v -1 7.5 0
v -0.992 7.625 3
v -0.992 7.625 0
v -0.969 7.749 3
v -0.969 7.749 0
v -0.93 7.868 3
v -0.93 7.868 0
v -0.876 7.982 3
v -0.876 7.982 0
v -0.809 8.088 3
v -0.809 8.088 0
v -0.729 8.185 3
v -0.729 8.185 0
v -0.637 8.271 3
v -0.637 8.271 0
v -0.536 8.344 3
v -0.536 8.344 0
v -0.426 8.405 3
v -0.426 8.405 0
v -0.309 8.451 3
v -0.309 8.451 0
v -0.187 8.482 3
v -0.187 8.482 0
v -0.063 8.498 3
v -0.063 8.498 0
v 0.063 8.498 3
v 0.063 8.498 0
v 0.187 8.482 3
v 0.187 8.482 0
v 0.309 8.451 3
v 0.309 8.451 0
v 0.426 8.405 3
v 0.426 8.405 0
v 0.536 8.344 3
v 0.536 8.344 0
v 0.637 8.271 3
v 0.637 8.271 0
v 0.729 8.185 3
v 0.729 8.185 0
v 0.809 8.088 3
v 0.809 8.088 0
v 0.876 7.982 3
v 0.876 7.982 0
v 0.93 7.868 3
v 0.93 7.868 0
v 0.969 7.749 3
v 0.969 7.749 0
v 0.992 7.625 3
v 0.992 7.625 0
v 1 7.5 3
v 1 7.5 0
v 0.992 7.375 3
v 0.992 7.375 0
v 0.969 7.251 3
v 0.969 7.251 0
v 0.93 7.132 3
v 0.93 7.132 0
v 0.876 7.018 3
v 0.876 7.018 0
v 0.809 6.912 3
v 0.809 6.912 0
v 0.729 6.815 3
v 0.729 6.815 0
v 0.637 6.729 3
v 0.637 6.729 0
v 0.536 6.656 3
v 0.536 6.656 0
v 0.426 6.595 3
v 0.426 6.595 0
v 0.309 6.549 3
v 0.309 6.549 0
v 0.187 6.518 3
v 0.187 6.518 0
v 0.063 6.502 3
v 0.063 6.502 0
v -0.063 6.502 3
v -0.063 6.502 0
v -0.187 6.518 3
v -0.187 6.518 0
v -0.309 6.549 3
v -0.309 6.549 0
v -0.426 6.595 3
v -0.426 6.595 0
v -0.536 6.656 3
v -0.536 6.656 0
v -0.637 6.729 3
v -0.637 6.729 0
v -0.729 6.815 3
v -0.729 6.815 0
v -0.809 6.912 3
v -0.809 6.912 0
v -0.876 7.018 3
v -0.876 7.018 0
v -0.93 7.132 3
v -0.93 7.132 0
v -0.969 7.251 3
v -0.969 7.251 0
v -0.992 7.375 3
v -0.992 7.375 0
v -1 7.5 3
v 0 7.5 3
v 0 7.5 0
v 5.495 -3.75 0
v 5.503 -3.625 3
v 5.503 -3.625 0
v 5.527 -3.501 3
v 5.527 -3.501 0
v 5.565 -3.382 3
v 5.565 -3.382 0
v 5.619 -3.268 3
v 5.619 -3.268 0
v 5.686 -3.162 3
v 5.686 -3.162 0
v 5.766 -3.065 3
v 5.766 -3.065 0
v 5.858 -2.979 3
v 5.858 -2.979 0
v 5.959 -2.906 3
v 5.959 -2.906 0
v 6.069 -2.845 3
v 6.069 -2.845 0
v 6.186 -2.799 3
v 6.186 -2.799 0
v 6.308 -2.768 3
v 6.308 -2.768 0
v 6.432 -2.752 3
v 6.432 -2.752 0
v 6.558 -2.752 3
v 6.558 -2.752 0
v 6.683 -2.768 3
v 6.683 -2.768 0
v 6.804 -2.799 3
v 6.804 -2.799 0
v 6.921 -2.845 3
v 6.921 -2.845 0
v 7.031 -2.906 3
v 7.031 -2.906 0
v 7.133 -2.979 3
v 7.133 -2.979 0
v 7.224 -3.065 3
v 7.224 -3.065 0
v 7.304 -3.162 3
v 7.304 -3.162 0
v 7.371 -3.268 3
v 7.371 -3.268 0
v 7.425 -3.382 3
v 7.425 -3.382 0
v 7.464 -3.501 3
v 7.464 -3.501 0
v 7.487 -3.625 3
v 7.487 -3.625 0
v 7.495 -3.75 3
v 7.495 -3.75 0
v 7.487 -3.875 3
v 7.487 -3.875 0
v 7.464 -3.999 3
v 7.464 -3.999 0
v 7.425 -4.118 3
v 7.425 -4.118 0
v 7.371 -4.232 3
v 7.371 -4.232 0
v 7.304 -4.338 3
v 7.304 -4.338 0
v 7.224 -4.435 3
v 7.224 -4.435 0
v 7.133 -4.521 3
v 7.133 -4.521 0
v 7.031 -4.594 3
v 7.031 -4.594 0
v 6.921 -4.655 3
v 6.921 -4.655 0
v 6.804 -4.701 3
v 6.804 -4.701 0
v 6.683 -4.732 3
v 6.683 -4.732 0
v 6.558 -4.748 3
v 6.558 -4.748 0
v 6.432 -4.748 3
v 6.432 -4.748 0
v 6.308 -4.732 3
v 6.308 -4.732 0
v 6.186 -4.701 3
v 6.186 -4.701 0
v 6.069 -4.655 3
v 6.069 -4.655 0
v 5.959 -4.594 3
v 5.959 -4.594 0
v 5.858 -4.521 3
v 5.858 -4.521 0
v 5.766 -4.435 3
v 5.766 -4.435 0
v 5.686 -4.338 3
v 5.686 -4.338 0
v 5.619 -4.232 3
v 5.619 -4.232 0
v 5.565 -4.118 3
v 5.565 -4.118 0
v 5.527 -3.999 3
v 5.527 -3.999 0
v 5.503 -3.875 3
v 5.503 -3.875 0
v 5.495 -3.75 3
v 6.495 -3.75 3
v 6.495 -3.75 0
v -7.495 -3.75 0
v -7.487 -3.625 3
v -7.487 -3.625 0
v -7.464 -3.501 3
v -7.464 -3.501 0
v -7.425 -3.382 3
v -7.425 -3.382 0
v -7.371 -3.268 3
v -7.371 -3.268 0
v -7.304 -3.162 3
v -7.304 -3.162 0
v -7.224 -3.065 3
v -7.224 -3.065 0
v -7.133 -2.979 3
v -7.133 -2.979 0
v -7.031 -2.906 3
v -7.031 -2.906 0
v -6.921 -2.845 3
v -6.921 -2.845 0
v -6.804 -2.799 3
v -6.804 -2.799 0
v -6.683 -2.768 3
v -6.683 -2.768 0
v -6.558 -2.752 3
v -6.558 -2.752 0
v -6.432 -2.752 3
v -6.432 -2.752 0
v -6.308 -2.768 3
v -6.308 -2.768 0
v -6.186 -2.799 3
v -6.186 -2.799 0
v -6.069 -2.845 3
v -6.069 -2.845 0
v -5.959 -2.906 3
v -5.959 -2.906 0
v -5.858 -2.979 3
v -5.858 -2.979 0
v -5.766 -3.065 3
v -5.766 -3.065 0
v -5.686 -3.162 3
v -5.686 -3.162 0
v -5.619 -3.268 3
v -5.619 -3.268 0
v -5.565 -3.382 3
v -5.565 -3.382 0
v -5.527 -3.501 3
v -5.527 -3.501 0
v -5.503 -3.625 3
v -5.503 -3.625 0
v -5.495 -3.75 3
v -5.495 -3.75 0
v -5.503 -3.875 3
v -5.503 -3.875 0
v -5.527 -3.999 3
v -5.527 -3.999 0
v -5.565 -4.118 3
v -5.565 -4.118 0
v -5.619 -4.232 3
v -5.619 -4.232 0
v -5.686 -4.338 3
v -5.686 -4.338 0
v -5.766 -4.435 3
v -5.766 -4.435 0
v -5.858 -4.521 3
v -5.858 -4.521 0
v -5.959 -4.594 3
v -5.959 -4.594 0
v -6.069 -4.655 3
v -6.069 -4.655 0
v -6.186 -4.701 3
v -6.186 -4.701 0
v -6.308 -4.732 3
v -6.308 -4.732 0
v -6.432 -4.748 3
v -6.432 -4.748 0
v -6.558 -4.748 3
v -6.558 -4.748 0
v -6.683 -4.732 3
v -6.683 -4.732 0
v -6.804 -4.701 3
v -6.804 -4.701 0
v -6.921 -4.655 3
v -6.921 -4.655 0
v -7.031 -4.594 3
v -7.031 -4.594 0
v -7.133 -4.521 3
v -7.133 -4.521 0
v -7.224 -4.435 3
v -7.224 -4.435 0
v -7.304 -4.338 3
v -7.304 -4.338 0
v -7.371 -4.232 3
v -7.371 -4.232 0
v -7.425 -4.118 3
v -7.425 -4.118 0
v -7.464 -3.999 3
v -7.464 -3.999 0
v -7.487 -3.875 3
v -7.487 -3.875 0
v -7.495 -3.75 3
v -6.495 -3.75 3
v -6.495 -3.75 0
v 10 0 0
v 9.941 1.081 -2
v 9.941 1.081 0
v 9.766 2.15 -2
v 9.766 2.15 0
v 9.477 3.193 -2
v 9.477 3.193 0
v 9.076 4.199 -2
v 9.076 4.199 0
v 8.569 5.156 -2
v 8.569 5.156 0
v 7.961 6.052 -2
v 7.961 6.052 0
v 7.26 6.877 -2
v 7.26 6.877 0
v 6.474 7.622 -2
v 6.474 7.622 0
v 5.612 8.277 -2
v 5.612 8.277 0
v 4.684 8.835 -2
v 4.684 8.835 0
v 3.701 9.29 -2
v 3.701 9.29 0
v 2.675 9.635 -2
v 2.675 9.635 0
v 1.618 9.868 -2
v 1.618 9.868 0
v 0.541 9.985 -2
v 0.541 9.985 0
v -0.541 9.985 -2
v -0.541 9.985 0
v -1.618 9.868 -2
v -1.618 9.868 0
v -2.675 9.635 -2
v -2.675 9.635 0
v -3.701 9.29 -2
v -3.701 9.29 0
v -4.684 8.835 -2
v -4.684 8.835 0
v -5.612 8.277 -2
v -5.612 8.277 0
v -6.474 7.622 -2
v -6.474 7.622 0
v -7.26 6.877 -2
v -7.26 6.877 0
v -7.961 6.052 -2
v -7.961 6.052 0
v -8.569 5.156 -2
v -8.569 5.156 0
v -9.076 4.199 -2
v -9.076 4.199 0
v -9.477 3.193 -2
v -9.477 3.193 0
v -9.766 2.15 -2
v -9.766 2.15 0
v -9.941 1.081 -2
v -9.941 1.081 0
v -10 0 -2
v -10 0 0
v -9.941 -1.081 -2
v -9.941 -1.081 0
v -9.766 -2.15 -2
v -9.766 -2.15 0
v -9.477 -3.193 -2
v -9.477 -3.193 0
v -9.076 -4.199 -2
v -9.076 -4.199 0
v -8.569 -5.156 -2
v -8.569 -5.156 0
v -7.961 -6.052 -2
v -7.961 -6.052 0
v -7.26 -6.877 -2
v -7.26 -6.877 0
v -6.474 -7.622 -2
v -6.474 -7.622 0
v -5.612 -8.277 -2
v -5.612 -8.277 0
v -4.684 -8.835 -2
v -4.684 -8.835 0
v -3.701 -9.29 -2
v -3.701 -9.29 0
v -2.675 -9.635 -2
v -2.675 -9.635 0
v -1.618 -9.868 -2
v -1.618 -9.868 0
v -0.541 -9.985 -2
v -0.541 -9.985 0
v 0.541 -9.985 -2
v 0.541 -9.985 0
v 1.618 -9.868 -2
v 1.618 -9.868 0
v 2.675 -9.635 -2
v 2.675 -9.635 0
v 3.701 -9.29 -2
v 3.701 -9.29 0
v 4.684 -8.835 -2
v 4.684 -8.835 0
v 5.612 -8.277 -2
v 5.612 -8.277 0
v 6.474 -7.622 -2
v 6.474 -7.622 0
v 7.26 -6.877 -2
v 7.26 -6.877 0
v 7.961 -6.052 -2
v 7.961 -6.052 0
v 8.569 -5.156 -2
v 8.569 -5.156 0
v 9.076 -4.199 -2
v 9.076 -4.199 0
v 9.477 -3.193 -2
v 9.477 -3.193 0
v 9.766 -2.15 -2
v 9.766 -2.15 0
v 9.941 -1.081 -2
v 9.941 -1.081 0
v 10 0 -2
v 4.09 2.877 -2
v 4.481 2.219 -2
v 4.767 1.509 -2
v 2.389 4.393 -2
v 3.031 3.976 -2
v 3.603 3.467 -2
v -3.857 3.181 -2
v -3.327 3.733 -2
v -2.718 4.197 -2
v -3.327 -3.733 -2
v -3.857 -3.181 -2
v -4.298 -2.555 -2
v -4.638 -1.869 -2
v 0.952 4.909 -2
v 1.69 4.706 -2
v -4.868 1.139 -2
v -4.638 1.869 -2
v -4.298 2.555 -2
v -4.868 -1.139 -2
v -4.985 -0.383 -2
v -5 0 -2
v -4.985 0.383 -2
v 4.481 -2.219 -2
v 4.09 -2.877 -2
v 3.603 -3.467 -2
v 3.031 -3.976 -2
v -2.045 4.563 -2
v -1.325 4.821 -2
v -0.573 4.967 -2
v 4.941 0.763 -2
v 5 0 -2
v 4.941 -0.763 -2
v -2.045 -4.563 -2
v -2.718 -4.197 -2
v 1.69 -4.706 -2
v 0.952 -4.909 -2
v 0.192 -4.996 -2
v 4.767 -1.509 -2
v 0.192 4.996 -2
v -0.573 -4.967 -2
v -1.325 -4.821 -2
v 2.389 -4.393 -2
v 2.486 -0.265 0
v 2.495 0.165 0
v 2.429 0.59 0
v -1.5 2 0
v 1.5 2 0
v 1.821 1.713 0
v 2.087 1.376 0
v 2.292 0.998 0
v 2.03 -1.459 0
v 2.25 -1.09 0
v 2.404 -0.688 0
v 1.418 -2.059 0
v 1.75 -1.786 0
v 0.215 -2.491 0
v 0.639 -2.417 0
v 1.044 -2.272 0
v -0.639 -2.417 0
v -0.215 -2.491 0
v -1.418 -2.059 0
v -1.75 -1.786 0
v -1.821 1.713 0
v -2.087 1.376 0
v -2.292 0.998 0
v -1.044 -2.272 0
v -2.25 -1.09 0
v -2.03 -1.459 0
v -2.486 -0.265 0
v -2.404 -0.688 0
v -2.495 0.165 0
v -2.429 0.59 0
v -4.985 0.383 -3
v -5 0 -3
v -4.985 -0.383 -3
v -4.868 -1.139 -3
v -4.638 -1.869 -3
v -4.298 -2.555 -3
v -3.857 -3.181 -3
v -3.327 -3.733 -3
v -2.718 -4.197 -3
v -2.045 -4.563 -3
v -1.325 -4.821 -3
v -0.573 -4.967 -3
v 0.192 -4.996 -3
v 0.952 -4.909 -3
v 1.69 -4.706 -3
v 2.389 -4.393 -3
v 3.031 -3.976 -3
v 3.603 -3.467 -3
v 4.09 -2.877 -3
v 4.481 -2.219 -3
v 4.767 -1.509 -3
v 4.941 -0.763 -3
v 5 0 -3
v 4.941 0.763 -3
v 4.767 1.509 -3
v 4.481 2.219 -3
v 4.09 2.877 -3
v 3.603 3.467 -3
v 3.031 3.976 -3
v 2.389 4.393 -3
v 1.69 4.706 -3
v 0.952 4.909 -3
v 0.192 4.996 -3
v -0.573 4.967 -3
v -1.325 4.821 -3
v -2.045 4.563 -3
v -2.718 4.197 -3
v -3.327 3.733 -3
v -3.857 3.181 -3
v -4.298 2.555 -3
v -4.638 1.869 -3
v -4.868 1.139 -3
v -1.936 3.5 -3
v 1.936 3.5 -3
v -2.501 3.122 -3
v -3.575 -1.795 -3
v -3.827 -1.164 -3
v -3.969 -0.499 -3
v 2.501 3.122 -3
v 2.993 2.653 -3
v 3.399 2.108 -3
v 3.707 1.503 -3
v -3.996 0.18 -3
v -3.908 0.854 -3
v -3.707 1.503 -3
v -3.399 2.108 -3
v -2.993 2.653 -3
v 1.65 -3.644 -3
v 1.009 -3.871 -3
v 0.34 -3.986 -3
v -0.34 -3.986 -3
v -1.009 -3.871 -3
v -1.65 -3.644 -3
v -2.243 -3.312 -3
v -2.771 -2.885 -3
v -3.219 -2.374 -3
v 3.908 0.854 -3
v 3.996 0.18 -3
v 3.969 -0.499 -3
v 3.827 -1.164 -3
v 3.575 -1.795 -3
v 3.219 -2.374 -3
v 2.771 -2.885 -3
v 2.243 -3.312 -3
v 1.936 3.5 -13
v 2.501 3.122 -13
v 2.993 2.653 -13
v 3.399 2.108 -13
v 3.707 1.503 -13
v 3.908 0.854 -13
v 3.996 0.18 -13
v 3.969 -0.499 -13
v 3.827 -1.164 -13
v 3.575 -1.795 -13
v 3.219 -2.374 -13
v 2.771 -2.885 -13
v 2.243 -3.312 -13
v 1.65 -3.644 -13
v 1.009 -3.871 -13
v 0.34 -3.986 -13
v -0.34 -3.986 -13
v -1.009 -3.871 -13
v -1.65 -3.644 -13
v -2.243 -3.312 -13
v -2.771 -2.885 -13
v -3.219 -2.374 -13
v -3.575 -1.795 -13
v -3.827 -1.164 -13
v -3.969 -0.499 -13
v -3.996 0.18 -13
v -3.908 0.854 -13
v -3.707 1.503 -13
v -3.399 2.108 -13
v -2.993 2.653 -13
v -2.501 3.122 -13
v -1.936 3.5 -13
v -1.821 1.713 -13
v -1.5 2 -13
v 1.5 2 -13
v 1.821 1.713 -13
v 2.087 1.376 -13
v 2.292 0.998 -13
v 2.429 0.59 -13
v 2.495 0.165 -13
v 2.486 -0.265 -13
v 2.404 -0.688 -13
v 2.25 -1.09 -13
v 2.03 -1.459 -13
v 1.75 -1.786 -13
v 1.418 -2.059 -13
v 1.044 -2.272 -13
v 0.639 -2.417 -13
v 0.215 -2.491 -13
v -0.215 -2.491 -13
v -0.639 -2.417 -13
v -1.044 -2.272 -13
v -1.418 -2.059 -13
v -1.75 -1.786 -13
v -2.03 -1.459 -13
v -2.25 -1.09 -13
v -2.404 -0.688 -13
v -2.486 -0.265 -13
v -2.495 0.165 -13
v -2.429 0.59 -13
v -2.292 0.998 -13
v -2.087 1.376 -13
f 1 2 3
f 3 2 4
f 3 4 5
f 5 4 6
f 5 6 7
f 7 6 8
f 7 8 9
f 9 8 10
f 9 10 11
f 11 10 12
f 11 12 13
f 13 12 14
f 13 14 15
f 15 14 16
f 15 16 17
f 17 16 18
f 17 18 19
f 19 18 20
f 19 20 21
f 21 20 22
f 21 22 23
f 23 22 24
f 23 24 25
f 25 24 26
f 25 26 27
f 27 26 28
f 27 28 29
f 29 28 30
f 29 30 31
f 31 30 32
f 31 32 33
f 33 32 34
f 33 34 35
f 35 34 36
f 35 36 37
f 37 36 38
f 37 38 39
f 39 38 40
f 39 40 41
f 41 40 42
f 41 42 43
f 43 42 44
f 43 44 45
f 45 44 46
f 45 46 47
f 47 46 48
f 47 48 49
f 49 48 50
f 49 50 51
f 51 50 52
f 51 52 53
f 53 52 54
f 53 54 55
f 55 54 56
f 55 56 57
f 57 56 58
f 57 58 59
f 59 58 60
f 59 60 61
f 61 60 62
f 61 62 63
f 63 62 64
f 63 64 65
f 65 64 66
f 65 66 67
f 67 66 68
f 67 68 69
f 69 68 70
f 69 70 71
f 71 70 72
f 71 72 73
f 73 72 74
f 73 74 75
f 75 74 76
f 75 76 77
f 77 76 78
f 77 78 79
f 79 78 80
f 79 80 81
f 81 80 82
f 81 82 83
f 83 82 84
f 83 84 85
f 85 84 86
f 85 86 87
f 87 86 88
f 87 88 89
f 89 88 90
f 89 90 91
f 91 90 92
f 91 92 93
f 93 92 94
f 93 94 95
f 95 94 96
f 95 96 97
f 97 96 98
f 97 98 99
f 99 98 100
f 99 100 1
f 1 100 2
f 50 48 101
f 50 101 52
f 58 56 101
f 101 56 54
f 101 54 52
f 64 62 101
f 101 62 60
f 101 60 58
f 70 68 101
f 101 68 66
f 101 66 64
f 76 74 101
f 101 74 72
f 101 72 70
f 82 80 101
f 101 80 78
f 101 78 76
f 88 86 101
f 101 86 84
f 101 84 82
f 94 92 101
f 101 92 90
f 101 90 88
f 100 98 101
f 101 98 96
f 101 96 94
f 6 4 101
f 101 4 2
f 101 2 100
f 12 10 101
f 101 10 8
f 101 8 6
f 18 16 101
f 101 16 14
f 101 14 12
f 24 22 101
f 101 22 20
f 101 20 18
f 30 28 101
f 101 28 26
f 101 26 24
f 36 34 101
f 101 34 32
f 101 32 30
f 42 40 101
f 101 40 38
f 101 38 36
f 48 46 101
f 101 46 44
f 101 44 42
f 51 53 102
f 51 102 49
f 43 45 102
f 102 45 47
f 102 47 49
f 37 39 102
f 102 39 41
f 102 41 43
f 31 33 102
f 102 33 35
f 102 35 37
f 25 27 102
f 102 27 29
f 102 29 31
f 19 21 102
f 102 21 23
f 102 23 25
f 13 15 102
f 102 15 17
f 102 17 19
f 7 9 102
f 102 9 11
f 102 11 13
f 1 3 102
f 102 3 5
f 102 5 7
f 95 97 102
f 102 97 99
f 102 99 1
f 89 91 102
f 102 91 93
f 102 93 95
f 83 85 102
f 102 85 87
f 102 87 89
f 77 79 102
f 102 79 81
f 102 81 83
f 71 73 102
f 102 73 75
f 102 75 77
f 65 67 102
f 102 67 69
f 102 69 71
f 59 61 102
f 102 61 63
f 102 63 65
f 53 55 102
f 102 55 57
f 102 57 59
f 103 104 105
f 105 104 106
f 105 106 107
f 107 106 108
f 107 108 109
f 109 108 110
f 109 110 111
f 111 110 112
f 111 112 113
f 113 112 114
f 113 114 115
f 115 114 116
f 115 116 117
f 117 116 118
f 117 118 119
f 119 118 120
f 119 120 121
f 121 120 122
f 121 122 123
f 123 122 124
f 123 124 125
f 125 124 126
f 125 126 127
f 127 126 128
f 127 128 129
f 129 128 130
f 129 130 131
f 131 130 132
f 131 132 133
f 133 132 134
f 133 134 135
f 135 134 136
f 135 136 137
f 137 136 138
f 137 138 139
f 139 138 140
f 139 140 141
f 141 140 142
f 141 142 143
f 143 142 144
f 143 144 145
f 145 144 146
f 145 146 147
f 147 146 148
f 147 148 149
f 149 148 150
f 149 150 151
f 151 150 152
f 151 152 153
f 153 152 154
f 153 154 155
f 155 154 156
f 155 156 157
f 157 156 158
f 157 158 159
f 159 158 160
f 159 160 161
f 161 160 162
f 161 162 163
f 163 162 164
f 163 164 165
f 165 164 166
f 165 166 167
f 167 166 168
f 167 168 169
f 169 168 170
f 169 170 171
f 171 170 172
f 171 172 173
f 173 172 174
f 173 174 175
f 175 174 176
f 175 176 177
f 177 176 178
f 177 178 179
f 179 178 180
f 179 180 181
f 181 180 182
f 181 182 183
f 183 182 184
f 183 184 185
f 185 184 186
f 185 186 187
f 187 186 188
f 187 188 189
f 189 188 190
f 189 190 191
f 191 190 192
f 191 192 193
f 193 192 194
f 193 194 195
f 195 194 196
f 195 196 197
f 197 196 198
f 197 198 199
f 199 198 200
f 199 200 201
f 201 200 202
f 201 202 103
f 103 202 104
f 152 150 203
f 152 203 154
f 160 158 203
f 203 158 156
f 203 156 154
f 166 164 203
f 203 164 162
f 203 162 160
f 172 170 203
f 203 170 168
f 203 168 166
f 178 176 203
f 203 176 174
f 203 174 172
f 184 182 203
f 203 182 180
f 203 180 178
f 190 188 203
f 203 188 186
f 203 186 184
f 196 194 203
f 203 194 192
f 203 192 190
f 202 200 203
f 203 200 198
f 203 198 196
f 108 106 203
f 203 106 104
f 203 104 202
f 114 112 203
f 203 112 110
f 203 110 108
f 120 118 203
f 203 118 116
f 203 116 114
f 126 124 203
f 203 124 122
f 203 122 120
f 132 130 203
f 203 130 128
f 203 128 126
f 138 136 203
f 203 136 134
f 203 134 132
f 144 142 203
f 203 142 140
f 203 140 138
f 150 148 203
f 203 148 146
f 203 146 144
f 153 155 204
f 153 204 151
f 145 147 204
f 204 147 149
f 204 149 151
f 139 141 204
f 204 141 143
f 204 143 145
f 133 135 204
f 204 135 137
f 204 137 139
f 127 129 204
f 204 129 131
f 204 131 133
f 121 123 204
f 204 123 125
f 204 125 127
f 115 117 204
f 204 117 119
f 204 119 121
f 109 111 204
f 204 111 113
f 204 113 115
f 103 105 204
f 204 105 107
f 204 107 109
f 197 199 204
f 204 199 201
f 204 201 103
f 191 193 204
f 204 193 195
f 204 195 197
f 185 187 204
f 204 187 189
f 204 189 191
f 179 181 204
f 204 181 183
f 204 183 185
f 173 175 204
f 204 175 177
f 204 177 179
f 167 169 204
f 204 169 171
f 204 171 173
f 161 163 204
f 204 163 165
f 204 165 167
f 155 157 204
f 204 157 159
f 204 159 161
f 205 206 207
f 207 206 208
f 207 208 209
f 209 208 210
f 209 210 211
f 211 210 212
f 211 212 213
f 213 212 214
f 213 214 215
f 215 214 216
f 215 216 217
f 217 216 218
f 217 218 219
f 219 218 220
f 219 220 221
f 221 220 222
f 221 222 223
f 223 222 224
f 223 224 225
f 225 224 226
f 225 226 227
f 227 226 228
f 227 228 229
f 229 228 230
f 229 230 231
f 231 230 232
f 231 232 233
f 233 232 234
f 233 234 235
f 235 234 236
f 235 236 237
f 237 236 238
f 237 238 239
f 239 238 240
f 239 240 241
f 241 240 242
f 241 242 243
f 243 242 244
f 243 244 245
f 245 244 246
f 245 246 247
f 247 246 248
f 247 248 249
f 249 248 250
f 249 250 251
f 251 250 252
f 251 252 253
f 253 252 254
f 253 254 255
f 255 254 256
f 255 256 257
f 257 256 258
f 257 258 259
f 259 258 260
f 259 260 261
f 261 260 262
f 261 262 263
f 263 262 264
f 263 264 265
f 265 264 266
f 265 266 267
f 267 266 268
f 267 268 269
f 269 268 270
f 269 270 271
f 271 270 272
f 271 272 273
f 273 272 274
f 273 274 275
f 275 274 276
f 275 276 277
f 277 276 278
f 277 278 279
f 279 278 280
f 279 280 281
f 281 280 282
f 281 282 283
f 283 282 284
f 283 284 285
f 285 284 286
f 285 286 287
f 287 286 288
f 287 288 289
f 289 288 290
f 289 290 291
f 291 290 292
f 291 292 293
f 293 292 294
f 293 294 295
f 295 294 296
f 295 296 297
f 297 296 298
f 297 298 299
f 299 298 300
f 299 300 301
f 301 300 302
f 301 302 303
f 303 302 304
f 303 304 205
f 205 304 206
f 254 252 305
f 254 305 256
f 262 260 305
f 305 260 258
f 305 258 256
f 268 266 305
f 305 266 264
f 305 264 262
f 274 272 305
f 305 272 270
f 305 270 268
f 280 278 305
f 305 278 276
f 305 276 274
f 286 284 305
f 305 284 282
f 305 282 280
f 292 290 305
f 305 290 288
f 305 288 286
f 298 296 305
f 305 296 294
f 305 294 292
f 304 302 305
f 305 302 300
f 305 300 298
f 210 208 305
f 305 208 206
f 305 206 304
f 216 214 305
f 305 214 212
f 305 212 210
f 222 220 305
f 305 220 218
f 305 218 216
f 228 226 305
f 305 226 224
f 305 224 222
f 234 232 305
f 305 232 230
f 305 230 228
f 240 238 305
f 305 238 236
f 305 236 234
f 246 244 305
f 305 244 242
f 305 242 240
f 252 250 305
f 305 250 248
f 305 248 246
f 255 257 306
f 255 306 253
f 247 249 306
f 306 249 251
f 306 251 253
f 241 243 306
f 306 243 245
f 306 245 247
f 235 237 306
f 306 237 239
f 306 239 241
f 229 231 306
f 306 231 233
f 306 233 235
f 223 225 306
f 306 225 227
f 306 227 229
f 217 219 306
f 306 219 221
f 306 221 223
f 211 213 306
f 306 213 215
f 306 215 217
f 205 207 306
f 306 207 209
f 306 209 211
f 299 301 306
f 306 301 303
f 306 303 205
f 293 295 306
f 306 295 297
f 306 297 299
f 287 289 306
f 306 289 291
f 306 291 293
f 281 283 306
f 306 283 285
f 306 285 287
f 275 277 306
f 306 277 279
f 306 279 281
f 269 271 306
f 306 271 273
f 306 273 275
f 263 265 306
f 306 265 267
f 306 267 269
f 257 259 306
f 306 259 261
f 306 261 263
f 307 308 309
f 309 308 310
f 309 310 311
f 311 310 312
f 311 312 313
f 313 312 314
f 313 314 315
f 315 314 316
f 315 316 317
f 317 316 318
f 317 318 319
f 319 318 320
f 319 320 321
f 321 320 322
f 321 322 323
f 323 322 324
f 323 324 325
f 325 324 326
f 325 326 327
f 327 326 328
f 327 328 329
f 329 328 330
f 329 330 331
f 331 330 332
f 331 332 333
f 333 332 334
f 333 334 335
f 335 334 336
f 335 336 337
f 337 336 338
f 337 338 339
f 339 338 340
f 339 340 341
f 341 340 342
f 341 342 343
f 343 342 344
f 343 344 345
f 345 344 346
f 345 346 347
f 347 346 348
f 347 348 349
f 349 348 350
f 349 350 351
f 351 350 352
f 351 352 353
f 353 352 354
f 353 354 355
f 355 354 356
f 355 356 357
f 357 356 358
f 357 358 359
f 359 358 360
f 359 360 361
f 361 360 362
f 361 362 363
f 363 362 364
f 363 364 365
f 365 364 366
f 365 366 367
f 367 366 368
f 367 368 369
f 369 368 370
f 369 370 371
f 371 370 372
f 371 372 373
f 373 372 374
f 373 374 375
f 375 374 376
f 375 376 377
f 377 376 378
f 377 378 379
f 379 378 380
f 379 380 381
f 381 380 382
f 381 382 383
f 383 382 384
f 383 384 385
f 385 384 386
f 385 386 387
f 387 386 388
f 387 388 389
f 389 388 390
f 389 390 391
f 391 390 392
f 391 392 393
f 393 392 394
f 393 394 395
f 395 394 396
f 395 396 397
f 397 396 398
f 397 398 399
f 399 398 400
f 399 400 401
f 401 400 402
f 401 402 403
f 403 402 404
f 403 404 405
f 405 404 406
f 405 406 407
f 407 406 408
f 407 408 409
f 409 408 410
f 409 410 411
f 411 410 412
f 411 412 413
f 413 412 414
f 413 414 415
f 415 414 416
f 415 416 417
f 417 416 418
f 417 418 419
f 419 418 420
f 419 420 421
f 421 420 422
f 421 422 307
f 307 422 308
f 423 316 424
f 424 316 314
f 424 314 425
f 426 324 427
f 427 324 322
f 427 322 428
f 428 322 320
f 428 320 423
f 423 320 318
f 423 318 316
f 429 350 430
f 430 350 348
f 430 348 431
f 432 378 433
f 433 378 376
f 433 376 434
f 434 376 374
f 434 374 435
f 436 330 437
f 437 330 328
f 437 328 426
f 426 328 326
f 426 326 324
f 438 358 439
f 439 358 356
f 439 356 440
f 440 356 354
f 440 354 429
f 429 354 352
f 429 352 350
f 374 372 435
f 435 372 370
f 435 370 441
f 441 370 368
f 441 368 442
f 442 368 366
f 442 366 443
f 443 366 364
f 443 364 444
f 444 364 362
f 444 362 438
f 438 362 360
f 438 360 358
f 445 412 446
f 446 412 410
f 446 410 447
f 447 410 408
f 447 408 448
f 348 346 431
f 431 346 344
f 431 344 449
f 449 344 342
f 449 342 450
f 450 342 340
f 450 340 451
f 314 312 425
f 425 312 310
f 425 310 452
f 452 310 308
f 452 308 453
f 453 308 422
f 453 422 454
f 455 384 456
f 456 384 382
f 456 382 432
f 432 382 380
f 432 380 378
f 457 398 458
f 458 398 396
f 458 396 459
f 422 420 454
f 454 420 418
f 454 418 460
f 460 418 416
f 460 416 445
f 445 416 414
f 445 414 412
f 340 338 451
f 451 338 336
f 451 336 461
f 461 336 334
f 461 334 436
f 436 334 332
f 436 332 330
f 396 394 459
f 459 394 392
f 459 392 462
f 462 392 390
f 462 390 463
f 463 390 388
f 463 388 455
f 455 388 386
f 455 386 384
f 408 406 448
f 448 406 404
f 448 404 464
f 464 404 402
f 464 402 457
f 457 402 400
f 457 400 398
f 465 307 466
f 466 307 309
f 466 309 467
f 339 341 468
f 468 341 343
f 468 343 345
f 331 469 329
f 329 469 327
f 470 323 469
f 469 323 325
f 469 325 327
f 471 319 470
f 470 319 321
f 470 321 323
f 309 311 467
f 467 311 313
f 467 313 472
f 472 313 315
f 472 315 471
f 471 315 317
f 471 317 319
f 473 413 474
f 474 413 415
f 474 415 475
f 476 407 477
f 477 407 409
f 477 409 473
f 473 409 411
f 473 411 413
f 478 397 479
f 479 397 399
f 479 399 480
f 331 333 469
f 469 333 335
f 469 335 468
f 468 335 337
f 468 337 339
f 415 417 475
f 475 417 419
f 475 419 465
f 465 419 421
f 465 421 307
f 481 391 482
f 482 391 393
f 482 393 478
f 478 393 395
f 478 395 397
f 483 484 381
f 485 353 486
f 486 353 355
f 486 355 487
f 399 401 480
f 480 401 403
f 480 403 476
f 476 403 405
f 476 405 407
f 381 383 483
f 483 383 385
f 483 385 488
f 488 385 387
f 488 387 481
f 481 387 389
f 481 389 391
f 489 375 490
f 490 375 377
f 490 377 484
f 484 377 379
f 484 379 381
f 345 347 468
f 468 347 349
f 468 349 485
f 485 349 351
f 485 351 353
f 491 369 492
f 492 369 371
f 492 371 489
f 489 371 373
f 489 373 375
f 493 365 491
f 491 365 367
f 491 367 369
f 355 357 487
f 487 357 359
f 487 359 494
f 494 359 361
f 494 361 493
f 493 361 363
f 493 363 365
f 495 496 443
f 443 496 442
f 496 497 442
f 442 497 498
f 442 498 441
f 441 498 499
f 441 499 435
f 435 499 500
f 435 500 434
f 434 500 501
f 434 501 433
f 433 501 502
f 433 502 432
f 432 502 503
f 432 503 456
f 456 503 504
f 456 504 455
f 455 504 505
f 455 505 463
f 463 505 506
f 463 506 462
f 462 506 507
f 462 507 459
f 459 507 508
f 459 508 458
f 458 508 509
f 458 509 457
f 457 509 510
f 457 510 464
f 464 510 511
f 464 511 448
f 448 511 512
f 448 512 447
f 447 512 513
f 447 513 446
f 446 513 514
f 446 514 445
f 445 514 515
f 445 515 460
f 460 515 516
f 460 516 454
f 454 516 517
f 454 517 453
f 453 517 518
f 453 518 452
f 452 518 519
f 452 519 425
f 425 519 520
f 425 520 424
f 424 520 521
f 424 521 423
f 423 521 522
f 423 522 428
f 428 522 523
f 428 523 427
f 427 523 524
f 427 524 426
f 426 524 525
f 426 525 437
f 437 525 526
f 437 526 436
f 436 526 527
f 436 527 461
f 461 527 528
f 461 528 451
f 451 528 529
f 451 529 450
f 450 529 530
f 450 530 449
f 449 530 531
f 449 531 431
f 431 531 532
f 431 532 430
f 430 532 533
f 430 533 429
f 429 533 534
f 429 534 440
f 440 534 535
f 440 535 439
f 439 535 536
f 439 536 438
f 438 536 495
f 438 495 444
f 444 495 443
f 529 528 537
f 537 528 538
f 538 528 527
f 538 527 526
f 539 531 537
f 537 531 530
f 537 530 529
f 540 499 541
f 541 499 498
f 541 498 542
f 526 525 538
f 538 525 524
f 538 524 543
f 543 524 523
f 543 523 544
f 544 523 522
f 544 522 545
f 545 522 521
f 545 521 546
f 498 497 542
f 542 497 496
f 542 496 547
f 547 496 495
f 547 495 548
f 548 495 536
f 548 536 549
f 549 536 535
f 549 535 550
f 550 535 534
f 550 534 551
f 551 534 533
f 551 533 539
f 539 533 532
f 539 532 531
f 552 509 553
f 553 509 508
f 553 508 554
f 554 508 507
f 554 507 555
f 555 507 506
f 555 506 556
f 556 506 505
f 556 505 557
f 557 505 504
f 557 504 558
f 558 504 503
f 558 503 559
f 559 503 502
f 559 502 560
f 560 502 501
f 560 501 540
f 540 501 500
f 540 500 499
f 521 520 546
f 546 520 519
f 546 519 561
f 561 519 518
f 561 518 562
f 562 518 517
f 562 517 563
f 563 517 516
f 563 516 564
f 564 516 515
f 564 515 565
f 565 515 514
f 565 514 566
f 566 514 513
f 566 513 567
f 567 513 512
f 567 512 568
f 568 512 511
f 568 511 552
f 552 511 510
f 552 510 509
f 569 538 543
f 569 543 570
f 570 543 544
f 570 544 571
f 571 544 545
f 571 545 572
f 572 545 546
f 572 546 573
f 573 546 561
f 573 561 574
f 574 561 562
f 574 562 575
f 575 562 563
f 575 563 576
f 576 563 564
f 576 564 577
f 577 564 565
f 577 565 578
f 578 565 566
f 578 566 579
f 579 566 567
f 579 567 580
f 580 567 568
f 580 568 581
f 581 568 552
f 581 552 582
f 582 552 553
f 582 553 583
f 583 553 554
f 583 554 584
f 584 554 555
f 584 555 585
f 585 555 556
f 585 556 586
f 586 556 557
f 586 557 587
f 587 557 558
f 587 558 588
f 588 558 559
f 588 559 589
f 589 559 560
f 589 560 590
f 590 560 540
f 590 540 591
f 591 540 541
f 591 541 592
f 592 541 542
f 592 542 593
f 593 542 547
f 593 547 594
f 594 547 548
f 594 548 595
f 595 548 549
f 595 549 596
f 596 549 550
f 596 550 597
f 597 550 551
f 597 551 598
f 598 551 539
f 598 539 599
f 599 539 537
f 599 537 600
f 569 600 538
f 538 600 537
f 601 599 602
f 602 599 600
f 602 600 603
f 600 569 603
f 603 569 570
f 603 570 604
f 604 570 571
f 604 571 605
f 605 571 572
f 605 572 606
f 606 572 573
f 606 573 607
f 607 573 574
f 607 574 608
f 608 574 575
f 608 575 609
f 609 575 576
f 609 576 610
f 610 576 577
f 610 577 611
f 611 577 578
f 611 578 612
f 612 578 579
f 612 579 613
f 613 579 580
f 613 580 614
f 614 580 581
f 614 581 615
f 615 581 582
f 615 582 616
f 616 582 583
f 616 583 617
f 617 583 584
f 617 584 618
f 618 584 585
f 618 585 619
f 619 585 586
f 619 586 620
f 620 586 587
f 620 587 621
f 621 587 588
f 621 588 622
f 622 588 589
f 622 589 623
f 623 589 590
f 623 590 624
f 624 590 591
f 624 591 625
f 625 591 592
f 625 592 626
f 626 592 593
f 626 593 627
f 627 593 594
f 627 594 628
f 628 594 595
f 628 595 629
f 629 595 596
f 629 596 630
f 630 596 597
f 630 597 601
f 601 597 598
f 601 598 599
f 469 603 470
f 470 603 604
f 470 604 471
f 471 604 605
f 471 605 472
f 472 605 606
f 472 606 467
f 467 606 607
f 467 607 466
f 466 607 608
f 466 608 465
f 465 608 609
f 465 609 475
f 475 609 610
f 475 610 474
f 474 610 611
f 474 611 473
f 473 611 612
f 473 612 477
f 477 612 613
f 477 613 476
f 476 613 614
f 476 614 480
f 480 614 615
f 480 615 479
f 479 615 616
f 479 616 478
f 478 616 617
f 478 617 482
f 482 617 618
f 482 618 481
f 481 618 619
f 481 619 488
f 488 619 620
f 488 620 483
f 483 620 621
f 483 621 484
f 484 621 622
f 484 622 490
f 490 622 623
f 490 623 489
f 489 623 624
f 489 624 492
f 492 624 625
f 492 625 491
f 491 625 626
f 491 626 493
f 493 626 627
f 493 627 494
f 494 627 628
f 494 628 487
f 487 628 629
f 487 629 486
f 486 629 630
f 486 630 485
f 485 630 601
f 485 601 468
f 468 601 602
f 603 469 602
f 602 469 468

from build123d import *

# Parameters (mm, degrees)
SKETCH_1_R          = 1
EXTRUDE_1_DEPTH     = 3
EXTRUDE_1_2_DEPTH   = 3
EXTRUDE_1_3_DEPTH   = 3
SKETCH_2_R          = 10
EXTRUDE_2_DEPTH     = 2
SKETCH_3_R          = 5
EXTRUDE_3_DEPTH     = 1
EXTRUDE_4_DEPTH     = 10
CUT_EXTRUDE_1_DEPTH = 24


with BuildPart() as part:
    # 草图1 → 凸台-拉伸1 (new body)
    with BuildSketch(Plane.XY):
        with Locations((0, 7.5)):
            Circle(SKETCH_1_R)
    extrude(amount=EXTRUDE_1_DEPTH)


with BuildPart() as body_2:
    # 草图1 → Extrude 1 2 (new body)
    with BuildSketch(Plane.XY):
        with Locations((6.495190528, -3.75)):
            Circle(SKETCH_1_R)
    extrude(amount=EXTRUDE_1_2_DEPTH)


with BuildPart() as body_3:
    # 草图1 → Extrude 1 3 (new body)
    with BuildSketch(Plane.XY):
        with Locations((-6.495190528, -3.75)):
            Circle(SKETCH_1_R)
    extrude(amount=EXTRUDE_1_3_DEPTH)


with BuildPart() as body_4:
    # 草图2 → 凸台-拉伸2 (new body)
    with BuildSketch(Plane(origin=(0, 0, 0), x_dir=(-1, 0, 0), z_dir=(0, 0, -1))):
        Circle(SKETCH_2_R)
    extrude(amount=EXTRUDE_2_DEPTH)

    # 草图3 → 凸台-拉伸3 (add)
    with BuildSketch(Plane(origin=(0, 0, -2), x_dir=(-1, 0, 0), z_dir=(0, 0, -1))):
        Circle(SKETCH_3_R)
    extrude(amount=EXTRUDE_3_DEPTH)

    # 草图4 → 凸台-拉伸4 (add)
    with BuildSketch(Plane(origin=(0, 0, -3), x_dir=(-1, 0, 0), z_dir=(0, 0, -1))):
        with BuildLine():
            Line((-1.936491673, 3.5), (1.936491673, 3.5))
            ThreePointArc((1.936491673, 3.5), (0, -4), (-1.936491673, 3.5))
        make_face()
    extrude(amount=EXTRUDE_4_DEPTH)

    # 草图5 → 切除-拉伸1 (cut)
    with BuildSketch(Plane(origin=(0, 0, -13), x_dir=(-1, 0, 0), z_dir=(0, 0, -1))):
        with BuildLine():
            Line((-1.5, 2), (1.5, 2))
            ThreePointArc((1.5, 2), (0, -2.5), (-1.5, 2))
        make_face()
    extrude(amount=-CUT_EXTRUDE_1_DEPTH, mode=Mode.SUBTRACT)


solid = Compound([part.part, body_2.part, body_3.part, body_4.part])
